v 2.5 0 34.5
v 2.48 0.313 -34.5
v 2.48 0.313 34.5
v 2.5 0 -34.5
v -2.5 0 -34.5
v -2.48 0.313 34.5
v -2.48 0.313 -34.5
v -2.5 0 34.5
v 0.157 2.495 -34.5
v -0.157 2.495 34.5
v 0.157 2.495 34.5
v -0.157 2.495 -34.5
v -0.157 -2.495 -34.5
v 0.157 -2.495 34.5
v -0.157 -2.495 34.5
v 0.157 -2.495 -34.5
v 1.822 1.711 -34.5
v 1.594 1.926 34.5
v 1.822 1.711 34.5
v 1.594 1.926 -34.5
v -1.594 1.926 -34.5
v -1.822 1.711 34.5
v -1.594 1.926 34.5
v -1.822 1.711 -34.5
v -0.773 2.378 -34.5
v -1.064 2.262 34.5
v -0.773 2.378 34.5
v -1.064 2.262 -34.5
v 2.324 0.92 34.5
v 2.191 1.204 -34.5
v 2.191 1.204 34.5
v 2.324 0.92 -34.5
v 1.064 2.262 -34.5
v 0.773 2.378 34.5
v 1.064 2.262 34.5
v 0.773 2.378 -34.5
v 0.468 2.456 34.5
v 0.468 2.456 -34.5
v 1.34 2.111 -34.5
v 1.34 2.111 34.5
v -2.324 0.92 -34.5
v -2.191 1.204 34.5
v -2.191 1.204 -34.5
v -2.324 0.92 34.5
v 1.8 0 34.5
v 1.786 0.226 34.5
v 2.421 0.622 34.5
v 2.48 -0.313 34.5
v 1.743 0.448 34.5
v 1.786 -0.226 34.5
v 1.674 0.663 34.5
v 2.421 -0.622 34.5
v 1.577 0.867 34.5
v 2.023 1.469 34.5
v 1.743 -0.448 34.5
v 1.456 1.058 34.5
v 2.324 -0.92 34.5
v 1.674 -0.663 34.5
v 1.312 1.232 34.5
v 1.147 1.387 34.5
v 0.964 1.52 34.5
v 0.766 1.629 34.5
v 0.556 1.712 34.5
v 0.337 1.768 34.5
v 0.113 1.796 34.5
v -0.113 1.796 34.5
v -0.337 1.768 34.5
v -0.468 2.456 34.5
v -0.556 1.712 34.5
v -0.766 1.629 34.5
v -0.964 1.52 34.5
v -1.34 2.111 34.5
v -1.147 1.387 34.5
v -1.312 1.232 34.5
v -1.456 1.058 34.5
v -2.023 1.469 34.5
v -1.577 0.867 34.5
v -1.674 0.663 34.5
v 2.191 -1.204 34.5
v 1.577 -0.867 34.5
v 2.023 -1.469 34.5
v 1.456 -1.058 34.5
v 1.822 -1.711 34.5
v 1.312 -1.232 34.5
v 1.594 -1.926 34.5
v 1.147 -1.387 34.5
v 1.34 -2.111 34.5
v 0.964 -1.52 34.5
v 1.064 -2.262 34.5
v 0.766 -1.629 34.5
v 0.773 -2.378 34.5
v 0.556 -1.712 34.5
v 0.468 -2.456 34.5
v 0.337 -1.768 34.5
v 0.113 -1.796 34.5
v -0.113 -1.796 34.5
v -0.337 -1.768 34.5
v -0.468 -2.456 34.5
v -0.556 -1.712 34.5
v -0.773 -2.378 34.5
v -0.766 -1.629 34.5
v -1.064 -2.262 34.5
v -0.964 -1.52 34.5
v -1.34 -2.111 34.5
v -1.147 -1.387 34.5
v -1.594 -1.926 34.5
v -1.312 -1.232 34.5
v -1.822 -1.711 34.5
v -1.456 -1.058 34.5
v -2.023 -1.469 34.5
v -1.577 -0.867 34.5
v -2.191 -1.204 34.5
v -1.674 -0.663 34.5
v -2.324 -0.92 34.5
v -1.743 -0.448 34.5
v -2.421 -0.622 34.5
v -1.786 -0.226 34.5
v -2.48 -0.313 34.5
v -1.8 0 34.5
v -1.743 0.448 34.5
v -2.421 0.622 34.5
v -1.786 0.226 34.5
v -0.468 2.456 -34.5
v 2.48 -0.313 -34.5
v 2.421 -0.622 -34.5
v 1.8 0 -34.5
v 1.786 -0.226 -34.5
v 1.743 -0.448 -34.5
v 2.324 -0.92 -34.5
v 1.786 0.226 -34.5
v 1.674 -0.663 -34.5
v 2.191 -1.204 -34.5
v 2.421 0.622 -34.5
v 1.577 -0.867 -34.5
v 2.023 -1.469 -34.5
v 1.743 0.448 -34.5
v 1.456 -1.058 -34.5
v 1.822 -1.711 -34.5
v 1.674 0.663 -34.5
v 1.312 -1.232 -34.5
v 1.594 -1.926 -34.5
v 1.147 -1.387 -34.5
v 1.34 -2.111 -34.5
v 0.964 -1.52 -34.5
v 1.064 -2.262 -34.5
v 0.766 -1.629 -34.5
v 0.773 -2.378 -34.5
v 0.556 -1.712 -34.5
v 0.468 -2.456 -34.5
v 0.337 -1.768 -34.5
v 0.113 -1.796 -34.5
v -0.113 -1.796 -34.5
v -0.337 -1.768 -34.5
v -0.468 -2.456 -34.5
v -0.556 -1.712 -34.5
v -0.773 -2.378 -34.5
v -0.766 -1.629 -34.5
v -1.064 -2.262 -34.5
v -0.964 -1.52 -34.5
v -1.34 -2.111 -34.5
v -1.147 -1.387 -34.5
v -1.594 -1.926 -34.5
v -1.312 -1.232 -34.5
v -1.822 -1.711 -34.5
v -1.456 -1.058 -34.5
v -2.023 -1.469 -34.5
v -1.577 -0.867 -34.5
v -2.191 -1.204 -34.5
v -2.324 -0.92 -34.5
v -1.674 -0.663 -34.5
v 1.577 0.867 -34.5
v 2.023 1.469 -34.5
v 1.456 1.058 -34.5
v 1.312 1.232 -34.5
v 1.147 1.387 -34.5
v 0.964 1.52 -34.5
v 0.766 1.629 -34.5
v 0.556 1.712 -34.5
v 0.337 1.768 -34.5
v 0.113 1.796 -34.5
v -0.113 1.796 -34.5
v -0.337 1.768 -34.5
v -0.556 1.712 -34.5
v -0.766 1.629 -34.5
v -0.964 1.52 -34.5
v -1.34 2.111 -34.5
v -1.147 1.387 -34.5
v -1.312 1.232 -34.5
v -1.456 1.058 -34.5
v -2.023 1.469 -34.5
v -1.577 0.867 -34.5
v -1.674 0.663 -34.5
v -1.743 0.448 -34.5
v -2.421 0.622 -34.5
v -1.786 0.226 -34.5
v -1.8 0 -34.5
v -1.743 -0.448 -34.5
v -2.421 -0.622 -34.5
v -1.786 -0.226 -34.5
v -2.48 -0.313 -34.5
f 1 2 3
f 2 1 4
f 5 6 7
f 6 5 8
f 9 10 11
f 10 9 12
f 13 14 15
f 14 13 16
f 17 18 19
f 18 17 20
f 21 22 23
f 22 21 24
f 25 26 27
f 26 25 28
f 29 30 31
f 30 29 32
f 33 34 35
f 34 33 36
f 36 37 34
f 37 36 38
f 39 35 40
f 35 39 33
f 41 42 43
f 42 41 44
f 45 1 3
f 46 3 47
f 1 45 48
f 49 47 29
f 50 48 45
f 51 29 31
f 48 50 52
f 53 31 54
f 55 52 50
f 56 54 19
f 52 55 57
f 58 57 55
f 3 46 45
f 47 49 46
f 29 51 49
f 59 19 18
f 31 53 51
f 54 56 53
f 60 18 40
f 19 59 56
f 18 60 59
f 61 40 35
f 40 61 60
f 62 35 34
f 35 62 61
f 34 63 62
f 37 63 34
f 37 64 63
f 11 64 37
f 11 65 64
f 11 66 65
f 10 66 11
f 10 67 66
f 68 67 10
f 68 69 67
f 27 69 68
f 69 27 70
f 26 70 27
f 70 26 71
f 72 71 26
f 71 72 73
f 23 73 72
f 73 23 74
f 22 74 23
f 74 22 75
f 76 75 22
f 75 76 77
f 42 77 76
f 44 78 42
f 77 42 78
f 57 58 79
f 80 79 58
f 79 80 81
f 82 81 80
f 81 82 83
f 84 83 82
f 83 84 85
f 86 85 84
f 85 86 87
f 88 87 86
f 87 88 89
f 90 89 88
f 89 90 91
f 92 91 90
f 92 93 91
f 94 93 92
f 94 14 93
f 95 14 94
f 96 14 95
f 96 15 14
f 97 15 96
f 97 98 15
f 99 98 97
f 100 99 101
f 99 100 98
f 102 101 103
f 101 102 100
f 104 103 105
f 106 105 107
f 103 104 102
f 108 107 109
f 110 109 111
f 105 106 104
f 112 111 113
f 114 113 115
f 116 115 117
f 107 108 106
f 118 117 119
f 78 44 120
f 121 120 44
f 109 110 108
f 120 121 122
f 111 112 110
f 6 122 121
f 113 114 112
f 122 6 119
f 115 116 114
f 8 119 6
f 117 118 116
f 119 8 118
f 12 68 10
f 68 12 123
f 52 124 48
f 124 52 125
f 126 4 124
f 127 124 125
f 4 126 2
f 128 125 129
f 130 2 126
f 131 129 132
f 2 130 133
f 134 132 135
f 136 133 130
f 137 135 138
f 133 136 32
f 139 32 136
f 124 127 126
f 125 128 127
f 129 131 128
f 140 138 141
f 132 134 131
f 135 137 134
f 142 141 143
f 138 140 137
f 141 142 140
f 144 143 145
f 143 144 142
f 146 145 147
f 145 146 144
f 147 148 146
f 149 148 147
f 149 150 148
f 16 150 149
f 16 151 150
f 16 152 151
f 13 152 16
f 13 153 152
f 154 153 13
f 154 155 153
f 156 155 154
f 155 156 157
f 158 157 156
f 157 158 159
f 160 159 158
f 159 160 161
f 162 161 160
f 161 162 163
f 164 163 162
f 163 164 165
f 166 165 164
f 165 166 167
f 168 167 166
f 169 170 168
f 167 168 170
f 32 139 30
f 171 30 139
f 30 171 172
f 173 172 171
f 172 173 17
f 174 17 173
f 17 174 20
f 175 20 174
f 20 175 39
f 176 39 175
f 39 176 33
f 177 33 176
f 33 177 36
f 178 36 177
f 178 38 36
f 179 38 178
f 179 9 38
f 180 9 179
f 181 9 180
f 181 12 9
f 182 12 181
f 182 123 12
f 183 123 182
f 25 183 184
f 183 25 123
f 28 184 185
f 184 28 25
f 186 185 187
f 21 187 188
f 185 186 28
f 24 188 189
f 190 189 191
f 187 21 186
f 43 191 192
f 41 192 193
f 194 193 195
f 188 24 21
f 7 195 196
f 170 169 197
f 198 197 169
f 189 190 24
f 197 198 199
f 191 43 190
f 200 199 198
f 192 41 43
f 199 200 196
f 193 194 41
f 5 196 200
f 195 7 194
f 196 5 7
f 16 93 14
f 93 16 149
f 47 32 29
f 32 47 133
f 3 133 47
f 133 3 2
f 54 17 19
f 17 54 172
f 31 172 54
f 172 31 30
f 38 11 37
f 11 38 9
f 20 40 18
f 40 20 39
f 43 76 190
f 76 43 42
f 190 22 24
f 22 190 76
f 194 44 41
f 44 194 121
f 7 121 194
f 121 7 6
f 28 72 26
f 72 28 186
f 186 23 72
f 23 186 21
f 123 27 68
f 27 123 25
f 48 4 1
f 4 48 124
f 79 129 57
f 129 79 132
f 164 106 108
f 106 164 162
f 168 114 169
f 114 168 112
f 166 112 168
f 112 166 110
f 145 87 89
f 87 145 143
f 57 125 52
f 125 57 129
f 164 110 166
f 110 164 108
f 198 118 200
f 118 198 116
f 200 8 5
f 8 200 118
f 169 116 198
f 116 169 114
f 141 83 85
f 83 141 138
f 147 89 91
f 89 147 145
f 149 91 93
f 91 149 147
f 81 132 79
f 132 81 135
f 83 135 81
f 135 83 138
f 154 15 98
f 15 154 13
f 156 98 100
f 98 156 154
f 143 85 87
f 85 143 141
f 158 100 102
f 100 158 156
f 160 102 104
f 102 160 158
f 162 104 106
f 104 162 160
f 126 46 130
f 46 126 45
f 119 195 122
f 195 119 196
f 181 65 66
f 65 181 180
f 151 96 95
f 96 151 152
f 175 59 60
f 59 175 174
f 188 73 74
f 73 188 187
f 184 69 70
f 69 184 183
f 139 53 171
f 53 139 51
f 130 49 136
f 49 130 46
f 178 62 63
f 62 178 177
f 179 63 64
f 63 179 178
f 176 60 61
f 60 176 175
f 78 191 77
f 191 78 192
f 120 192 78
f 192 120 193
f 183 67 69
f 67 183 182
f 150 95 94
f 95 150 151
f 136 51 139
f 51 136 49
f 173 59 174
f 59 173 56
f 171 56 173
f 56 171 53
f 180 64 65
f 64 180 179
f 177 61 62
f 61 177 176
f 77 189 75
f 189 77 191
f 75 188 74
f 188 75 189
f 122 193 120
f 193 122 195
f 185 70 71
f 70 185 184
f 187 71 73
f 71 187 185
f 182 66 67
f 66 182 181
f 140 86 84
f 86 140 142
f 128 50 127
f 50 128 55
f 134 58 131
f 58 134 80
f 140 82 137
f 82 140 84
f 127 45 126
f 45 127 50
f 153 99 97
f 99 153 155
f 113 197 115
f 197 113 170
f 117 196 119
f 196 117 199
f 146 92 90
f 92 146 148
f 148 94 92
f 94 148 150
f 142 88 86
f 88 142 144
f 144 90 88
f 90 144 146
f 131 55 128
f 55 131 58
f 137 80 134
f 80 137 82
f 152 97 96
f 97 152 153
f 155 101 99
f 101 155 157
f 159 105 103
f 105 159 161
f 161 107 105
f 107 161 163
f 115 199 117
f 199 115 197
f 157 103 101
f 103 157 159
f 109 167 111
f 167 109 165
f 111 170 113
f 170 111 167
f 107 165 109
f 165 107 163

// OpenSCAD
$fn = 50;


difference() {
	union() {
		translate(v = [0, 0, -34.5000000000]) {
			cylinder(h = 69, r = 2.5000000000);
		}
	}
	union() {
		translate(v = [0, 0, -100.0000000000]) {
			cylinder(h = 200, r = 1.8000000000);
		}
	}
}
